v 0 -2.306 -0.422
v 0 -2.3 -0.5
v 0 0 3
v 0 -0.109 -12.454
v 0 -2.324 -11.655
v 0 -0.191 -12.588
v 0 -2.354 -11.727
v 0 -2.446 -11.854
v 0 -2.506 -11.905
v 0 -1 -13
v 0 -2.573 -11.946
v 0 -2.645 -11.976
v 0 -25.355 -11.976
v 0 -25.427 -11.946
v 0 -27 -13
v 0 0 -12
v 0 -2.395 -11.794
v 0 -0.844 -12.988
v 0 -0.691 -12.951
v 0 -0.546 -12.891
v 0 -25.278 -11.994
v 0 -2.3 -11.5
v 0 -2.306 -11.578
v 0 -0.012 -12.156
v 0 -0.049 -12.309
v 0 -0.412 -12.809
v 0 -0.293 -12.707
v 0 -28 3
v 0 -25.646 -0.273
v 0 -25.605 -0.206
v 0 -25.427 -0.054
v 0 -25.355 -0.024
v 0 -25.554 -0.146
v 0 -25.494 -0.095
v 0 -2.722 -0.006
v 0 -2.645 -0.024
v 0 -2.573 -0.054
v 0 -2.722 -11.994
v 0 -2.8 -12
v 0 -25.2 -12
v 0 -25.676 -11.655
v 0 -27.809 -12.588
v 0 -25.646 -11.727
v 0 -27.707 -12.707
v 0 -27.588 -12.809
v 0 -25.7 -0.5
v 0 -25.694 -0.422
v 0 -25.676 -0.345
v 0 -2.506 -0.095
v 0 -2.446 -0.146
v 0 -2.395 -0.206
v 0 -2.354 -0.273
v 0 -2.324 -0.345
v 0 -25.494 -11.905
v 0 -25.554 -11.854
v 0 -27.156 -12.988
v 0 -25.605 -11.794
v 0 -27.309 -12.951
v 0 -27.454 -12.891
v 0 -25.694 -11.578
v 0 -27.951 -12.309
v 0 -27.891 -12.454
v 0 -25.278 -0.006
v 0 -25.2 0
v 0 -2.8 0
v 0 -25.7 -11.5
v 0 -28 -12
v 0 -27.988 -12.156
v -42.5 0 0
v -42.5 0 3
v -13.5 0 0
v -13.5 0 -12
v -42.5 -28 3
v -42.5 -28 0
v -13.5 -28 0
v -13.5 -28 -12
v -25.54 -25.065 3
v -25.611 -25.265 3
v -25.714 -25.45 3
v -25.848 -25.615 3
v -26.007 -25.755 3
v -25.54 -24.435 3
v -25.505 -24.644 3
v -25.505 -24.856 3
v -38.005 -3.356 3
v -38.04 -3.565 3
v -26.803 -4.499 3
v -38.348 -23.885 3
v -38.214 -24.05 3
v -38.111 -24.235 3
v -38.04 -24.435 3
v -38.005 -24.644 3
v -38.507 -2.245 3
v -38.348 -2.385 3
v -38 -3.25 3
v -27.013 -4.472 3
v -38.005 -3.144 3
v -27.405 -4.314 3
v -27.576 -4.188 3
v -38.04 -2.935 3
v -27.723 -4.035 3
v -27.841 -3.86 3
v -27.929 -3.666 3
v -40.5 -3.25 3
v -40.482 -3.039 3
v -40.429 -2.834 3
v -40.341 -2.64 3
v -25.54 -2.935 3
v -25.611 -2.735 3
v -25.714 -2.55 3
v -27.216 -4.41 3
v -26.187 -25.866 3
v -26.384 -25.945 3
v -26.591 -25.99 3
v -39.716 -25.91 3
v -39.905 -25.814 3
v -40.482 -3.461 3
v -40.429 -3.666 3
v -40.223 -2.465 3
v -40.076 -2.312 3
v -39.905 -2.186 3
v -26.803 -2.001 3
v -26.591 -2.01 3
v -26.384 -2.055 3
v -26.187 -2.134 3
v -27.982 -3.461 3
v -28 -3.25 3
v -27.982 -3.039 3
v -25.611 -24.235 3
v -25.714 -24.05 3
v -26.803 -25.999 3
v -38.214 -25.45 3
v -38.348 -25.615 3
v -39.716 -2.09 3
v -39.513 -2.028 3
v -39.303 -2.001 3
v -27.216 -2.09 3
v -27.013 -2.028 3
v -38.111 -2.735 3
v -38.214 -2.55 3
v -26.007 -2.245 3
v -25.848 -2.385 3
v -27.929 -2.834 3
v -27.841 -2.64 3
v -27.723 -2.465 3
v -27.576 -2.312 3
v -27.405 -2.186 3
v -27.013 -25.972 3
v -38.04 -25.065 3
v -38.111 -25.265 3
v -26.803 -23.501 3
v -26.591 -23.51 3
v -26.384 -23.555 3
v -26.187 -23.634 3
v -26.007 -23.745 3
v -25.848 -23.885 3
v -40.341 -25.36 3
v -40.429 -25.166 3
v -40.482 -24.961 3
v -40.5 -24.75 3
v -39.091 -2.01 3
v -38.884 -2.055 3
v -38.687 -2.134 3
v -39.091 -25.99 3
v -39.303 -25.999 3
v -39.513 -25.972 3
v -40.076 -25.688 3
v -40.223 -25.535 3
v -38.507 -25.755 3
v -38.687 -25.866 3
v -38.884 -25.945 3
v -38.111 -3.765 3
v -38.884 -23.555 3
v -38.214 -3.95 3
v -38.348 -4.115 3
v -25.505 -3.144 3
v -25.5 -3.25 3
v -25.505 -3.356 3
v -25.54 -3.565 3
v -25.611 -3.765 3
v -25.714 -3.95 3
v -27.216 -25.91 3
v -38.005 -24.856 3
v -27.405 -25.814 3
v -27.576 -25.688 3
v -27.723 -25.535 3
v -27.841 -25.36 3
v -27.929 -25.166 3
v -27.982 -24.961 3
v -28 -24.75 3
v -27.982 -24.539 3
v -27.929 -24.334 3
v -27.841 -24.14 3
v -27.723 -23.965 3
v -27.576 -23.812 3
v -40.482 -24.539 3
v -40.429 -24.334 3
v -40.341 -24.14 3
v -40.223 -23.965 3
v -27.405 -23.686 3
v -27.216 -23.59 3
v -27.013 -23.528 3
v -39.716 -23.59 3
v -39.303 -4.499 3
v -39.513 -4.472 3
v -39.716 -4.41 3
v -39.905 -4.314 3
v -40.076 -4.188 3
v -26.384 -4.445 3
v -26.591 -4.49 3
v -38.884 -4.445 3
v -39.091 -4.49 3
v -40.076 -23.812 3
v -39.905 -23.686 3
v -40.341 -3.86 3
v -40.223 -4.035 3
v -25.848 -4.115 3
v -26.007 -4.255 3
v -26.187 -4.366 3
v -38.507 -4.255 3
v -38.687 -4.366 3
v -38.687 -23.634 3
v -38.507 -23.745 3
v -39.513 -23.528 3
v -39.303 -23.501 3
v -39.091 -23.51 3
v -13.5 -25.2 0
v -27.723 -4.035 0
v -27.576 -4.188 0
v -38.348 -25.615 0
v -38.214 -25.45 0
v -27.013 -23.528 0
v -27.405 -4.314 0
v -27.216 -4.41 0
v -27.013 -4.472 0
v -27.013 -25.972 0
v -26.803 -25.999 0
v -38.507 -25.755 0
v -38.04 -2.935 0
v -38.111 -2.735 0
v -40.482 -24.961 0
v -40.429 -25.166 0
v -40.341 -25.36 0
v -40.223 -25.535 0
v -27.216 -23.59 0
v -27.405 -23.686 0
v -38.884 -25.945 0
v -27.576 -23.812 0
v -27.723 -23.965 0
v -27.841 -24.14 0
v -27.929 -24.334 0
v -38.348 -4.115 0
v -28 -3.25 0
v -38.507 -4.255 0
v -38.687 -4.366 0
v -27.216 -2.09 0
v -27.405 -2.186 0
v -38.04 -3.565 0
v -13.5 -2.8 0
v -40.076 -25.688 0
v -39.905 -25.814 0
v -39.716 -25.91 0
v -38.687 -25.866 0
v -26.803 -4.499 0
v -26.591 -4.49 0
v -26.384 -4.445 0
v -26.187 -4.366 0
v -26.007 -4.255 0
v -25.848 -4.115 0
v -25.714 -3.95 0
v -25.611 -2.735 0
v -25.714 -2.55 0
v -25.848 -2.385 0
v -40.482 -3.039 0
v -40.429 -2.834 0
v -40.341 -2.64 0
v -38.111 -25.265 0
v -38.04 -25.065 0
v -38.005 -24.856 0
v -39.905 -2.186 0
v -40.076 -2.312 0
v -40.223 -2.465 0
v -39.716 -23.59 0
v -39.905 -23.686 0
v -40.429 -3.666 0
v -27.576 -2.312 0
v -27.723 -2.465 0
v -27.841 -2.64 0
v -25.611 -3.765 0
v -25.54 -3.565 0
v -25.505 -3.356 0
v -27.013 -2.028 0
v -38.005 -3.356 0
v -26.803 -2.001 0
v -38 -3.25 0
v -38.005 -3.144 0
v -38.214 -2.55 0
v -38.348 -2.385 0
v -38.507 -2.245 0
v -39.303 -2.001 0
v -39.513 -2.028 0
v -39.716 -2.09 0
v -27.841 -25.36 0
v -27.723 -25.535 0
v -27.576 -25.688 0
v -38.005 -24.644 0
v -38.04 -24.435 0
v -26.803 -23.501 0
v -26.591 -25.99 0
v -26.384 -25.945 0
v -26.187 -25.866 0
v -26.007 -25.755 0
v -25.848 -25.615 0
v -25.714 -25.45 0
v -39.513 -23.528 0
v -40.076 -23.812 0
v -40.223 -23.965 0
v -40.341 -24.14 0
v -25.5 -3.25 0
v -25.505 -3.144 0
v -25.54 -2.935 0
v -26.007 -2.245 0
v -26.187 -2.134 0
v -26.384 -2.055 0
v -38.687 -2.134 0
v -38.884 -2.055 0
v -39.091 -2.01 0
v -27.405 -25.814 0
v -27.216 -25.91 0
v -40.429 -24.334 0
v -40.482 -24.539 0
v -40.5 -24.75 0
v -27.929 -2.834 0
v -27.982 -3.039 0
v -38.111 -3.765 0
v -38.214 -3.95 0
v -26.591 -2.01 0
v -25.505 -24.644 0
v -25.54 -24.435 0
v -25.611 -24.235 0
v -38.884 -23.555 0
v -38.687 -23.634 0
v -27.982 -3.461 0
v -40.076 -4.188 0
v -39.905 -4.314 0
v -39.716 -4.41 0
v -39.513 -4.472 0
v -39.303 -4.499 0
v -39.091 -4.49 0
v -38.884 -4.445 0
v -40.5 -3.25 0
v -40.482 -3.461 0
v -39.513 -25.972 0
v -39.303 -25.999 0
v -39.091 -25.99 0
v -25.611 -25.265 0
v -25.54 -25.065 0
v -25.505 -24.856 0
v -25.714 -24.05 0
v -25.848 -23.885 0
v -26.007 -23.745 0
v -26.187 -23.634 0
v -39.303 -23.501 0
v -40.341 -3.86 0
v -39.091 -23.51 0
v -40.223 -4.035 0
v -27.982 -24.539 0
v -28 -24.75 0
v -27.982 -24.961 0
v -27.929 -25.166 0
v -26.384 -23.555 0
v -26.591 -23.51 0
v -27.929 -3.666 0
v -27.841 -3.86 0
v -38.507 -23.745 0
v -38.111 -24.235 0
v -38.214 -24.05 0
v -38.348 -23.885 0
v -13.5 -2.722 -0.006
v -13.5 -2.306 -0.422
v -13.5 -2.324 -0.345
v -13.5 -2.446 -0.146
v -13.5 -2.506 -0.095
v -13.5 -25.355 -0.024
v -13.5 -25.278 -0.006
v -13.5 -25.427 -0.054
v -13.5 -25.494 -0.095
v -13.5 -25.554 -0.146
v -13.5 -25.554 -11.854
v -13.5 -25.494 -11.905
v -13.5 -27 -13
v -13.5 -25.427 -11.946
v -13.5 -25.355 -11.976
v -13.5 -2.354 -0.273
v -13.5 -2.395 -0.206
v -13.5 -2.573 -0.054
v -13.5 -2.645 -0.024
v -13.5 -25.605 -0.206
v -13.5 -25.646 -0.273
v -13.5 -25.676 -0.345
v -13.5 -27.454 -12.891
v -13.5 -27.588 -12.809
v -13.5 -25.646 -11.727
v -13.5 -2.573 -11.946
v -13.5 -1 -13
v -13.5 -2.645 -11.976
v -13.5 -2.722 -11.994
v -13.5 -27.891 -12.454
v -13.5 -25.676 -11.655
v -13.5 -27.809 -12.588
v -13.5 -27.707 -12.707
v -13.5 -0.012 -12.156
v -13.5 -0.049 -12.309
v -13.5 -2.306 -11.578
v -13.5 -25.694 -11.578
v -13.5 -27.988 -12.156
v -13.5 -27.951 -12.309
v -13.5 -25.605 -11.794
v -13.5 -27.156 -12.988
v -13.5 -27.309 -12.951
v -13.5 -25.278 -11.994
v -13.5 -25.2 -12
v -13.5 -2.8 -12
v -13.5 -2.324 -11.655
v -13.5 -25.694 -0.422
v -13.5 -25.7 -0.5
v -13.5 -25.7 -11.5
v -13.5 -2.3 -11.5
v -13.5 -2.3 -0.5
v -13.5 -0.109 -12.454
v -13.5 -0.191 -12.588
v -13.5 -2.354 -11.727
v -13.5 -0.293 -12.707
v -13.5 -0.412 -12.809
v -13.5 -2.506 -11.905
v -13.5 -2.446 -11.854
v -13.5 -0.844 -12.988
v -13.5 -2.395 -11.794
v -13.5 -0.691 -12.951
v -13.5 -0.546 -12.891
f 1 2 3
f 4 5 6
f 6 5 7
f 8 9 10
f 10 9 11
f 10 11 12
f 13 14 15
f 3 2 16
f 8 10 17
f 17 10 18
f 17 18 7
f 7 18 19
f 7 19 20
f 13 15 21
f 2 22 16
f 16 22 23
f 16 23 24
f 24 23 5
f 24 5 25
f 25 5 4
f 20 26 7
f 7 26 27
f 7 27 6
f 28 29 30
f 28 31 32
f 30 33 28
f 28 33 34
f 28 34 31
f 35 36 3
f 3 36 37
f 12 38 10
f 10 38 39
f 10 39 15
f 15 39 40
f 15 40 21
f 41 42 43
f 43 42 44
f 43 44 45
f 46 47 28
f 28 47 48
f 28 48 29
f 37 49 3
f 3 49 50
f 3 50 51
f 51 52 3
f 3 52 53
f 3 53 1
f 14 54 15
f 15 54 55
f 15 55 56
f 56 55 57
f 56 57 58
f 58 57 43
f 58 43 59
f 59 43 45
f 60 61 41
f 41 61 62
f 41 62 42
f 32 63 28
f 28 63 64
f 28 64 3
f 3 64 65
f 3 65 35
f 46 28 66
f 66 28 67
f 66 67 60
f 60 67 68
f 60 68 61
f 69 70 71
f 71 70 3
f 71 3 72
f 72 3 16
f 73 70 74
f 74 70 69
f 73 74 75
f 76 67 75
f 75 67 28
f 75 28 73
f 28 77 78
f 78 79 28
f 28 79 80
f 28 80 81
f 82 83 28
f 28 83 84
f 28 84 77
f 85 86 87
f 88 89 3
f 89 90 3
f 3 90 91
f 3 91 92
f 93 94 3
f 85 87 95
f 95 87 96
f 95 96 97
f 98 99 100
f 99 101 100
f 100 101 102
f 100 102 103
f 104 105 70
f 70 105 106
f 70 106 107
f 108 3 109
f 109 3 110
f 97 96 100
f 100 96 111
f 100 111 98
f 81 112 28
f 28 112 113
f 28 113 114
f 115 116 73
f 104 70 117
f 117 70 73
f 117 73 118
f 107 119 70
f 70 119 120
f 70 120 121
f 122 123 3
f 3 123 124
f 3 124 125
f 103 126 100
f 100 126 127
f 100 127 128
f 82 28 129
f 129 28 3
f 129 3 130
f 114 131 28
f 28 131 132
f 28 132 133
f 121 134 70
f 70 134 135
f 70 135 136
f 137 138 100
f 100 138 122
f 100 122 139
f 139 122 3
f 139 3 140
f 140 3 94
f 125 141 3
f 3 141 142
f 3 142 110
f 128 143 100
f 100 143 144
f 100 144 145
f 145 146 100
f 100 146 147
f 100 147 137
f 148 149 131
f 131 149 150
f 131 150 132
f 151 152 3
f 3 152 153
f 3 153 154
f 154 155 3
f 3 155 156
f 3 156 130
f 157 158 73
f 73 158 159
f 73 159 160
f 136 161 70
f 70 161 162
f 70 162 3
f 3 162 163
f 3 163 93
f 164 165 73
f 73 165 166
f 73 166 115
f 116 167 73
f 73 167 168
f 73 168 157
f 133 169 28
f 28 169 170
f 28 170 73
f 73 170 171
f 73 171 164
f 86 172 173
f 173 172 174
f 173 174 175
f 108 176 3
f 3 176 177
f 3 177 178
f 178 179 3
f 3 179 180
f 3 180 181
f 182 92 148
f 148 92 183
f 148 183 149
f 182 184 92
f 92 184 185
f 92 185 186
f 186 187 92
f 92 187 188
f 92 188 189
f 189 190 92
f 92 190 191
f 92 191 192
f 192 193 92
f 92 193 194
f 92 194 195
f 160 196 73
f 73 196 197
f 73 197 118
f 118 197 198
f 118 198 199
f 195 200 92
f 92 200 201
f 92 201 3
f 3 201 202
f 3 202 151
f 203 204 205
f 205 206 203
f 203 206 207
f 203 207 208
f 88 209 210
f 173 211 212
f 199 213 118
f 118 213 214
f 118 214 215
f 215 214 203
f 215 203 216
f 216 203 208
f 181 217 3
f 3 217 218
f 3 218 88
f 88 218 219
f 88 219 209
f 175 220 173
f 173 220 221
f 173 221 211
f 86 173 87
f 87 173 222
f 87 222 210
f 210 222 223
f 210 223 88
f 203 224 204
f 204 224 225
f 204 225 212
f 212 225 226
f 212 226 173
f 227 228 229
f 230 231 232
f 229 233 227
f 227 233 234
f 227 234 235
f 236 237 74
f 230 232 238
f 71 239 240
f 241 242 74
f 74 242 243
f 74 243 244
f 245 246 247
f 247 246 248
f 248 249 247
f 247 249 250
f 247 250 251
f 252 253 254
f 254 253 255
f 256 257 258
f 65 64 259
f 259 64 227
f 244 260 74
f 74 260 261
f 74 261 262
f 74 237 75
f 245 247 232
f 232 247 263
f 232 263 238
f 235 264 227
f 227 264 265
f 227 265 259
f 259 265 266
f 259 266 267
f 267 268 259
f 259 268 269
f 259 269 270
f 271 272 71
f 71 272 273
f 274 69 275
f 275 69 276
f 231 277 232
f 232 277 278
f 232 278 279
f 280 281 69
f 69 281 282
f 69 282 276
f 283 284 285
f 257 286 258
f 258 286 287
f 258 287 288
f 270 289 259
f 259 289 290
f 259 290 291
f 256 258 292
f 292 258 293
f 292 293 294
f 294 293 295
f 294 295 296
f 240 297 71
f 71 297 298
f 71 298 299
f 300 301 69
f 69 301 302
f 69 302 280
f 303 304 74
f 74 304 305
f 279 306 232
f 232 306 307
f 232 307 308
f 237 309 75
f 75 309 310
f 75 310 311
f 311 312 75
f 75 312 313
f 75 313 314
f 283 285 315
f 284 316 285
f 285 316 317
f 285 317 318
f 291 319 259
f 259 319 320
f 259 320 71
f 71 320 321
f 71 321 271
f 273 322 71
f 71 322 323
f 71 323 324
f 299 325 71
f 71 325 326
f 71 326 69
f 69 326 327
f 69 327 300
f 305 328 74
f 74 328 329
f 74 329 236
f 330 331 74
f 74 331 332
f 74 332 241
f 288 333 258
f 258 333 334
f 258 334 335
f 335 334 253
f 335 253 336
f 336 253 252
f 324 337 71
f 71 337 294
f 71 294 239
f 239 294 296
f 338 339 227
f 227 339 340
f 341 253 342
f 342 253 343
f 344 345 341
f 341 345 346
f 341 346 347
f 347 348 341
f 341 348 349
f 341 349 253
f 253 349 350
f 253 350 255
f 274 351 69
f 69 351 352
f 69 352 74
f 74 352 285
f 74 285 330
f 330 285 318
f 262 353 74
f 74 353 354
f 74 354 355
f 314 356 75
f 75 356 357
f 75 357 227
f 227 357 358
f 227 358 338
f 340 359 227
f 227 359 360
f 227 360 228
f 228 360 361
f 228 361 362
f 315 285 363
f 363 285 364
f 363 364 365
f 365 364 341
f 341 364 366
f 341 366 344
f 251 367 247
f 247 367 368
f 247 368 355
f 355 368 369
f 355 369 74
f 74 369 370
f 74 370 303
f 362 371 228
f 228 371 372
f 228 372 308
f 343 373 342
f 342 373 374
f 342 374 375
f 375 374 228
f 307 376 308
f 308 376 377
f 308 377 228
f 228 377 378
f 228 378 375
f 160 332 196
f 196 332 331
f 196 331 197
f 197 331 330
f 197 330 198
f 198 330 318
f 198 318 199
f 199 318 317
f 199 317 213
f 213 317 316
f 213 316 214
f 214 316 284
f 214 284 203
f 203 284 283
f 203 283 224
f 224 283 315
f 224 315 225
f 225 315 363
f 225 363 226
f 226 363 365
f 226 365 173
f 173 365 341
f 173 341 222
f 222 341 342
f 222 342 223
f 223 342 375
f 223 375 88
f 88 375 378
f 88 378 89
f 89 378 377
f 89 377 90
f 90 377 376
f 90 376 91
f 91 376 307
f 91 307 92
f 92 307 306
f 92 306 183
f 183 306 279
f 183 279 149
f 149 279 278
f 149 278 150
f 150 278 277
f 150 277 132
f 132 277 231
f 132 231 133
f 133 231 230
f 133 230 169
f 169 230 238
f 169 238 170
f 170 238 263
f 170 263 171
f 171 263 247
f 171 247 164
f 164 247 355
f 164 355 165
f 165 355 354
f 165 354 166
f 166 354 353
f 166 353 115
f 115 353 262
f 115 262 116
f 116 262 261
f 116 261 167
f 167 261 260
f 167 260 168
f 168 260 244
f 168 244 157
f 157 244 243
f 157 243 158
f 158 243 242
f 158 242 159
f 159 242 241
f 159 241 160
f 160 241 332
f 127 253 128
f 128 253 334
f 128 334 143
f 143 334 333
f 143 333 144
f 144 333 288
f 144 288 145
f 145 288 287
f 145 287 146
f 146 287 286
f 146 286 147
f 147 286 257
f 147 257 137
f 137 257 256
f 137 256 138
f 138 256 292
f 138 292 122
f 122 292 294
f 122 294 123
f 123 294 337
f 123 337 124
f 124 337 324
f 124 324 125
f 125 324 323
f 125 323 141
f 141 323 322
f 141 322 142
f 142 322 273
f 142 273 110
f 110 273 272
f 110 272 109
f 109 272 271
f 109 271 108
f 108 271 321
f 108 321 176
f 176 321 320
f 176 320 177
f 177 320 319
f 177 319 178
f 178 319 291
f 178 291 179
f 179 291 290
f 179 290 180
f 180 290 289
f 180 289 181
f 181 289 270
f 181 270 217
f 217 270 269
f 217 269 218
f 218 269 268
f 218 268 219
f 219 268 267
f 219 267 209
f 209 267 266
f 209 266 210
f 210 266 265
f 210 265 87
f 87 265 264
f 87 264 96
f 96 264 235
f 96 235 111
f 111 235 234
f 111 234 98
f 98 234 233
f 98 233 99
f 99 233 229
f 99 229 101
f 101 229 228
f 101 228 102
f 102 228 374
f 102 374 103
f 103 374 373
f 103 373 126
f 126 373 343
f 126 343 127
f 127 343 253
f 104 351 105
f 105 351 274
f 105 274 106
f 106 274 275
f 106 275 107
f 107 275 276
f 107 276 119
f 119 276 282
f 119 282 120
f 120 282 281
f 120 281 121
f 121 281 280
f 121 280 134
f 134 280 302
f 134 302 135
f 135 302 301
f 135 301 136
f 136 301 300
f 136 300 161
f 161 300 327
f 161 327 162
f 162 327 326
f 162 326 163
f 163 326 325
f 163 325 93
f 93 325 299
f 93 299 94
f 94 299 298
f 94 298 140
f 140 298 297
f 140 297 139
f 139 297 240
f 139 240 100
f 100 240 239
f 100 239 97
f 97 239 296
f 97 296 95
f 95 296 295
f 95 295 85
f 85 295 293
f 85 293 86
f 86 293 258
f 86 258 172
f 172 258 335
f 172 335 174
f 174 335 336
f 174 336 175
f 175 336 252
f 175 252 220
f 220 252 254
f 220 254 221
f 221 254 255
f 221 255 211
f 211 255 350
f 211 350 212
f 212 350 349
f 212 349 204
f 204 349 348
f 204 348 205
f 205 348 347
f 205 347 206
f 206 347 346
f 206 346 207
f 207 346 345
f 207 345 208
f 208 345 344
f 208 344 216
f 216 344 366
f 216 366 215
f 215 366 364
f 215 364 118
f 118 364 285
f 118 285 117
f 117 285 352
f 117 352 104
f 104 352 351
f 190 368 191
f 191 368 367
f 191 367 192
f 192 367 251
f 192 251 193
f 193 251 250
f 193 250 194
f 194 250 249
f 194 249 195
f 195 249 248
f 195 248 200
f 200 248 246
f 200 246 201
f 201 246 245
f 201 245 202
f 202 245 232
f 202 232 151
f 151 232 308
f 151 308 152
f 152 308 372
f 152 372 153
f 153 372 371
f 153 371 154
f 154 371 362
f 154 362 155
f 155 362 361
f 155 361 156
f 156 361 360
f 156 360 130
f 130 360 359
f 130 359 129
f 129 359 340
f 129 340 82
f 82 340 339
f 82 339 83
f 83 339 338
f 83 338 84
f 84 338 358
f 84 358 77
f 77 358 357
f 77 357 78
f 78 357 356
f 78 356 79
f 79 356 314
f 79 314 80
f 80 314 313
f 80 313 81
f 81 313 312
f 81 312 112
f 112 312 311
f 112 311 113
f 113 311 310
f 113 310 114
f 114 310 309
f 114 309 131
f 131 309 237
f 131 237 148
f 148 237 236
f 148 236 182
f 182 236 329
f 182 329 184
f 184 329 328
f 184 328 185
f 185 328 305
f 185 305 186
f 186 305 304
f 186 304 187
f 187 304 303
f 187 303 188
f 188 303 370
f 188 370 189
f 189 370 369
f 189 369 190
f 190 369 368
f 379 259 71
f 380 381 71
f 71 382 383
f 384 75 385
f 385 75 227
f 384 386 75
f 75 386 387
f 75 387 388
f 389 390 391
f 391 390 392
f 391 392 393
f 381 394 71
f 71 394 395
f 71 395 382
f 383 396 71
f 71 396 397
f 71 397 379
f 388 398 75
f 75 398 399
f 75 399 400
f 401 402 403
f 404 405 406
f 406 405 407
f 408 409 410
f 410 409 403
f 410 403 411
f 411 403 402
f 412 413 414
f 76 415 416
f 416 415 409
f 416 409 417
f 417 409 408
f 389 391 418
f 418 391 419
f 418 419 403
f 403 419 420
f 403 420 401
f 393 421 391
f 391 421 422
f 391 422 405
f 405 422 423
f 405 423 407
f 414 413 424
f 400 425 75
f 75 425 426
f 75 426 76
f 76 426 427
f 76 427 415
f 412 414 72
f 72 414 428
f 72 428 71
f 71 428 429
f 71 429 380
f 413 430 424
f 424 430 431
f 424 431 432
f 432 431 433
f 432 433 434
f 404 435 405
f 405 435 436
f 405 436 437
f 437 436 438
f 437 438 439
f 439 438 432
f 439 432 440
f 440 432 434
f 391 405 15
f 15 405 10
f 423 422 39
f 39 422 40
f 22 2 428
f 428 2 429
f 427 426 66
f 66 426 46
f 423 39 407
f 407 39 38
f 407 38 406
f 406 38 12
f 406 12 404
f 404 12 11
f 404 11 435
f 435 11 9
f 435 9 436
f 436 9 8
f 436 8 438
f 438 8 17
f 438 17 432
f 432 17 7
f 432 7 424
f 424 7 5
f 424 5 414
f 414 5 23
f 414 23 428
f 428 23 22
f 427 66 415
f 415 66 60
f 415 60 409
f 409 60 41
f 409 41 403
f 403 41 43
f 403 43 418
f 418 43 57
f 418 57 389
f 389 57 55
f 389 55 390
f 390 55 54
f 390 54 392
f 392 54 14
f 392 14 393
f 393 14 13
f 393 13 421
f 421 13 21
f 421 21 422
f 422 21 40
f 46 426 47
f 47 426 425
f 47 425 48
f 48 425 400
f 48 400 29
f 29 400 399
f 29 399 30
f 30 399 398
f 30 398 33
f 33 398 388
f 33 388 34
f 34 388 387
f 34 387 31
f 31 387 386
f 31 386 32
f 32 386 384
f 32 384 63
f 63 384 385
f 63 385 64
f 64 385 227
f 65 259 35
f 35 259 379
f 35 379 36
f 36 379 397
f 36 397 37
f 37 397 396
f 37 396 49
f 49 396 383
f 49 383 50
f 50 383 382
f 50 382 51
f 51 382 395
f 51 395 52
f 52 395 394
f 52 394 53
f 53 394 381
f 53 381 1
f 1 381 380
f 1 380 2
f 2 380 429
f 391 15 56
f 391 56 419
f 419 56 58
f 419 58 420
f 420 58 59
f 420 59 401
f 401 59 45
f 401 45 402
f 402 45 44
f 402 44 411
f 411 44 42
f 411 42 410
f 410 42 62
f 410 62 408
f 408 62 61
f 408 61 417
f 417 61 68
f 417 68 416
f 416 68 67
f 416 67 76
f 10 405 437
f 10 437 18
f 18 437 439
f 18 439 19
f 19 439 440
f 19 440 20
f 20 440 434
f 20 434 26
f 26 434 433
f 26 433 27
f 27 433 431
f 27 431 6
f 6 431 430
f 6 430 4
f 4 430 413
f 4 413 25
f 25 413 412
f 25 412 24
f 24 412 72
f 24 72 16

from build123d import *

# Parameters (mm, degrees)
ESQUISSE1_W             = 42.5
ESQUISSE1_H             = 28
BOSS_EXTRU_1_DEPTH      = 3
ESQUISSE2_R             = 1.25
ENL_V_MAT_EXTRU_1_DEPTH = 3
ESQUISSE3_W             = 13.5
ESQUISSE3_H             = 28
BOSS_EXTRU_2_DEPTH      = 13
ESQUISSE4_W             = 12
ESQUISSE4_H             = 23.4
ENL_V_MAT_EXTRU_2_DEPTH = 43.355637169
CONG_1_R                = 0.5
CONG_2_R                = 1


with BuildPart() as part:
    # Esquisse1 → Boss.-Extru.1 (new body)
    with BuildSketch(Plane.XY):
        with Locations((-21.25, -14)):
            Rectangle(ESQUISSE1_W, ESQUISSE1_H)
    extrude(amount=BOSS_EXTRU_1_DEPTH)

    # Esquisse2 → Enlèv. mat.-Extru.1 (cut)
    with BuildSketch(Plane(origin=(0, 0, 0), x_dir=(-1, 0, 0), z_dir=(0, 0, -1))):
        with Locations((39.25, -24.75)):
            Circle(ESQUISSE2_R)
        with Locations((26.75, -24.75)):
            Circle(ESQUISSE2_R)
        with Locations(Location((39.25, -3.25, 0), (0, 0, 180))):
            Circle(ESQUISSE2_R)
        with Locations(Location((26.75, -3.25, 0), (0, 0, 180))):
            Circle(ESQUISSE2_R)
    extrude(amount=-ENL_V_MAT_EXTRU_1_DEPTH, mode=Mode.SUBTRACT)

    # Esquisse3 → Boss.-Extru.2 (add)
    with BuildSketch(Plane(origin=(0, 0, 0), x_dir=(-1, 0, 0), z_dir=(0, 0, -1))):
        with Locations((6.75, -14)):
            Rectangle(ESQUISSE3_W, ESQUISSE3_H)
    extrude(amount=BOSS_EXTRU_2_DEPTH)

    # Esquisse4 → Enlèv. mat.-Extru.2 (cut, through all)
    with BuildSketch(Plane.ZY.offset(13.5)):
        with Locations((-6, -14)):
            Rectangle(ESQUISSE4_W, ESQUISSE4_H)
    extrude(amount=-ENL_V_MAT_EXTRU_2_DEPTH, mode=Mode.SUBTRACT)

    # Congé1
    cong_1_edges = [part.edges().sort_by_distance(p)[0] for p in [
        (-6.75, -25.7, -12),
        (-6.75, -2.3, -12),
        (-6.75, -2.3, 0),
        (-6.75, -25.7, 0),
    ]]
    fillet(cong_1_edges, radius=CONG_1_R)

    # Congé2
    cong_2_edges = [part.edges().sort_by_distance(p)[0] for p in [
        (-6.75, -28, -13),
        (-6.75, 0, -13),
    ]]
    fillet(cong_2_edges, radius=CONG_2_R)


solid = part.part
